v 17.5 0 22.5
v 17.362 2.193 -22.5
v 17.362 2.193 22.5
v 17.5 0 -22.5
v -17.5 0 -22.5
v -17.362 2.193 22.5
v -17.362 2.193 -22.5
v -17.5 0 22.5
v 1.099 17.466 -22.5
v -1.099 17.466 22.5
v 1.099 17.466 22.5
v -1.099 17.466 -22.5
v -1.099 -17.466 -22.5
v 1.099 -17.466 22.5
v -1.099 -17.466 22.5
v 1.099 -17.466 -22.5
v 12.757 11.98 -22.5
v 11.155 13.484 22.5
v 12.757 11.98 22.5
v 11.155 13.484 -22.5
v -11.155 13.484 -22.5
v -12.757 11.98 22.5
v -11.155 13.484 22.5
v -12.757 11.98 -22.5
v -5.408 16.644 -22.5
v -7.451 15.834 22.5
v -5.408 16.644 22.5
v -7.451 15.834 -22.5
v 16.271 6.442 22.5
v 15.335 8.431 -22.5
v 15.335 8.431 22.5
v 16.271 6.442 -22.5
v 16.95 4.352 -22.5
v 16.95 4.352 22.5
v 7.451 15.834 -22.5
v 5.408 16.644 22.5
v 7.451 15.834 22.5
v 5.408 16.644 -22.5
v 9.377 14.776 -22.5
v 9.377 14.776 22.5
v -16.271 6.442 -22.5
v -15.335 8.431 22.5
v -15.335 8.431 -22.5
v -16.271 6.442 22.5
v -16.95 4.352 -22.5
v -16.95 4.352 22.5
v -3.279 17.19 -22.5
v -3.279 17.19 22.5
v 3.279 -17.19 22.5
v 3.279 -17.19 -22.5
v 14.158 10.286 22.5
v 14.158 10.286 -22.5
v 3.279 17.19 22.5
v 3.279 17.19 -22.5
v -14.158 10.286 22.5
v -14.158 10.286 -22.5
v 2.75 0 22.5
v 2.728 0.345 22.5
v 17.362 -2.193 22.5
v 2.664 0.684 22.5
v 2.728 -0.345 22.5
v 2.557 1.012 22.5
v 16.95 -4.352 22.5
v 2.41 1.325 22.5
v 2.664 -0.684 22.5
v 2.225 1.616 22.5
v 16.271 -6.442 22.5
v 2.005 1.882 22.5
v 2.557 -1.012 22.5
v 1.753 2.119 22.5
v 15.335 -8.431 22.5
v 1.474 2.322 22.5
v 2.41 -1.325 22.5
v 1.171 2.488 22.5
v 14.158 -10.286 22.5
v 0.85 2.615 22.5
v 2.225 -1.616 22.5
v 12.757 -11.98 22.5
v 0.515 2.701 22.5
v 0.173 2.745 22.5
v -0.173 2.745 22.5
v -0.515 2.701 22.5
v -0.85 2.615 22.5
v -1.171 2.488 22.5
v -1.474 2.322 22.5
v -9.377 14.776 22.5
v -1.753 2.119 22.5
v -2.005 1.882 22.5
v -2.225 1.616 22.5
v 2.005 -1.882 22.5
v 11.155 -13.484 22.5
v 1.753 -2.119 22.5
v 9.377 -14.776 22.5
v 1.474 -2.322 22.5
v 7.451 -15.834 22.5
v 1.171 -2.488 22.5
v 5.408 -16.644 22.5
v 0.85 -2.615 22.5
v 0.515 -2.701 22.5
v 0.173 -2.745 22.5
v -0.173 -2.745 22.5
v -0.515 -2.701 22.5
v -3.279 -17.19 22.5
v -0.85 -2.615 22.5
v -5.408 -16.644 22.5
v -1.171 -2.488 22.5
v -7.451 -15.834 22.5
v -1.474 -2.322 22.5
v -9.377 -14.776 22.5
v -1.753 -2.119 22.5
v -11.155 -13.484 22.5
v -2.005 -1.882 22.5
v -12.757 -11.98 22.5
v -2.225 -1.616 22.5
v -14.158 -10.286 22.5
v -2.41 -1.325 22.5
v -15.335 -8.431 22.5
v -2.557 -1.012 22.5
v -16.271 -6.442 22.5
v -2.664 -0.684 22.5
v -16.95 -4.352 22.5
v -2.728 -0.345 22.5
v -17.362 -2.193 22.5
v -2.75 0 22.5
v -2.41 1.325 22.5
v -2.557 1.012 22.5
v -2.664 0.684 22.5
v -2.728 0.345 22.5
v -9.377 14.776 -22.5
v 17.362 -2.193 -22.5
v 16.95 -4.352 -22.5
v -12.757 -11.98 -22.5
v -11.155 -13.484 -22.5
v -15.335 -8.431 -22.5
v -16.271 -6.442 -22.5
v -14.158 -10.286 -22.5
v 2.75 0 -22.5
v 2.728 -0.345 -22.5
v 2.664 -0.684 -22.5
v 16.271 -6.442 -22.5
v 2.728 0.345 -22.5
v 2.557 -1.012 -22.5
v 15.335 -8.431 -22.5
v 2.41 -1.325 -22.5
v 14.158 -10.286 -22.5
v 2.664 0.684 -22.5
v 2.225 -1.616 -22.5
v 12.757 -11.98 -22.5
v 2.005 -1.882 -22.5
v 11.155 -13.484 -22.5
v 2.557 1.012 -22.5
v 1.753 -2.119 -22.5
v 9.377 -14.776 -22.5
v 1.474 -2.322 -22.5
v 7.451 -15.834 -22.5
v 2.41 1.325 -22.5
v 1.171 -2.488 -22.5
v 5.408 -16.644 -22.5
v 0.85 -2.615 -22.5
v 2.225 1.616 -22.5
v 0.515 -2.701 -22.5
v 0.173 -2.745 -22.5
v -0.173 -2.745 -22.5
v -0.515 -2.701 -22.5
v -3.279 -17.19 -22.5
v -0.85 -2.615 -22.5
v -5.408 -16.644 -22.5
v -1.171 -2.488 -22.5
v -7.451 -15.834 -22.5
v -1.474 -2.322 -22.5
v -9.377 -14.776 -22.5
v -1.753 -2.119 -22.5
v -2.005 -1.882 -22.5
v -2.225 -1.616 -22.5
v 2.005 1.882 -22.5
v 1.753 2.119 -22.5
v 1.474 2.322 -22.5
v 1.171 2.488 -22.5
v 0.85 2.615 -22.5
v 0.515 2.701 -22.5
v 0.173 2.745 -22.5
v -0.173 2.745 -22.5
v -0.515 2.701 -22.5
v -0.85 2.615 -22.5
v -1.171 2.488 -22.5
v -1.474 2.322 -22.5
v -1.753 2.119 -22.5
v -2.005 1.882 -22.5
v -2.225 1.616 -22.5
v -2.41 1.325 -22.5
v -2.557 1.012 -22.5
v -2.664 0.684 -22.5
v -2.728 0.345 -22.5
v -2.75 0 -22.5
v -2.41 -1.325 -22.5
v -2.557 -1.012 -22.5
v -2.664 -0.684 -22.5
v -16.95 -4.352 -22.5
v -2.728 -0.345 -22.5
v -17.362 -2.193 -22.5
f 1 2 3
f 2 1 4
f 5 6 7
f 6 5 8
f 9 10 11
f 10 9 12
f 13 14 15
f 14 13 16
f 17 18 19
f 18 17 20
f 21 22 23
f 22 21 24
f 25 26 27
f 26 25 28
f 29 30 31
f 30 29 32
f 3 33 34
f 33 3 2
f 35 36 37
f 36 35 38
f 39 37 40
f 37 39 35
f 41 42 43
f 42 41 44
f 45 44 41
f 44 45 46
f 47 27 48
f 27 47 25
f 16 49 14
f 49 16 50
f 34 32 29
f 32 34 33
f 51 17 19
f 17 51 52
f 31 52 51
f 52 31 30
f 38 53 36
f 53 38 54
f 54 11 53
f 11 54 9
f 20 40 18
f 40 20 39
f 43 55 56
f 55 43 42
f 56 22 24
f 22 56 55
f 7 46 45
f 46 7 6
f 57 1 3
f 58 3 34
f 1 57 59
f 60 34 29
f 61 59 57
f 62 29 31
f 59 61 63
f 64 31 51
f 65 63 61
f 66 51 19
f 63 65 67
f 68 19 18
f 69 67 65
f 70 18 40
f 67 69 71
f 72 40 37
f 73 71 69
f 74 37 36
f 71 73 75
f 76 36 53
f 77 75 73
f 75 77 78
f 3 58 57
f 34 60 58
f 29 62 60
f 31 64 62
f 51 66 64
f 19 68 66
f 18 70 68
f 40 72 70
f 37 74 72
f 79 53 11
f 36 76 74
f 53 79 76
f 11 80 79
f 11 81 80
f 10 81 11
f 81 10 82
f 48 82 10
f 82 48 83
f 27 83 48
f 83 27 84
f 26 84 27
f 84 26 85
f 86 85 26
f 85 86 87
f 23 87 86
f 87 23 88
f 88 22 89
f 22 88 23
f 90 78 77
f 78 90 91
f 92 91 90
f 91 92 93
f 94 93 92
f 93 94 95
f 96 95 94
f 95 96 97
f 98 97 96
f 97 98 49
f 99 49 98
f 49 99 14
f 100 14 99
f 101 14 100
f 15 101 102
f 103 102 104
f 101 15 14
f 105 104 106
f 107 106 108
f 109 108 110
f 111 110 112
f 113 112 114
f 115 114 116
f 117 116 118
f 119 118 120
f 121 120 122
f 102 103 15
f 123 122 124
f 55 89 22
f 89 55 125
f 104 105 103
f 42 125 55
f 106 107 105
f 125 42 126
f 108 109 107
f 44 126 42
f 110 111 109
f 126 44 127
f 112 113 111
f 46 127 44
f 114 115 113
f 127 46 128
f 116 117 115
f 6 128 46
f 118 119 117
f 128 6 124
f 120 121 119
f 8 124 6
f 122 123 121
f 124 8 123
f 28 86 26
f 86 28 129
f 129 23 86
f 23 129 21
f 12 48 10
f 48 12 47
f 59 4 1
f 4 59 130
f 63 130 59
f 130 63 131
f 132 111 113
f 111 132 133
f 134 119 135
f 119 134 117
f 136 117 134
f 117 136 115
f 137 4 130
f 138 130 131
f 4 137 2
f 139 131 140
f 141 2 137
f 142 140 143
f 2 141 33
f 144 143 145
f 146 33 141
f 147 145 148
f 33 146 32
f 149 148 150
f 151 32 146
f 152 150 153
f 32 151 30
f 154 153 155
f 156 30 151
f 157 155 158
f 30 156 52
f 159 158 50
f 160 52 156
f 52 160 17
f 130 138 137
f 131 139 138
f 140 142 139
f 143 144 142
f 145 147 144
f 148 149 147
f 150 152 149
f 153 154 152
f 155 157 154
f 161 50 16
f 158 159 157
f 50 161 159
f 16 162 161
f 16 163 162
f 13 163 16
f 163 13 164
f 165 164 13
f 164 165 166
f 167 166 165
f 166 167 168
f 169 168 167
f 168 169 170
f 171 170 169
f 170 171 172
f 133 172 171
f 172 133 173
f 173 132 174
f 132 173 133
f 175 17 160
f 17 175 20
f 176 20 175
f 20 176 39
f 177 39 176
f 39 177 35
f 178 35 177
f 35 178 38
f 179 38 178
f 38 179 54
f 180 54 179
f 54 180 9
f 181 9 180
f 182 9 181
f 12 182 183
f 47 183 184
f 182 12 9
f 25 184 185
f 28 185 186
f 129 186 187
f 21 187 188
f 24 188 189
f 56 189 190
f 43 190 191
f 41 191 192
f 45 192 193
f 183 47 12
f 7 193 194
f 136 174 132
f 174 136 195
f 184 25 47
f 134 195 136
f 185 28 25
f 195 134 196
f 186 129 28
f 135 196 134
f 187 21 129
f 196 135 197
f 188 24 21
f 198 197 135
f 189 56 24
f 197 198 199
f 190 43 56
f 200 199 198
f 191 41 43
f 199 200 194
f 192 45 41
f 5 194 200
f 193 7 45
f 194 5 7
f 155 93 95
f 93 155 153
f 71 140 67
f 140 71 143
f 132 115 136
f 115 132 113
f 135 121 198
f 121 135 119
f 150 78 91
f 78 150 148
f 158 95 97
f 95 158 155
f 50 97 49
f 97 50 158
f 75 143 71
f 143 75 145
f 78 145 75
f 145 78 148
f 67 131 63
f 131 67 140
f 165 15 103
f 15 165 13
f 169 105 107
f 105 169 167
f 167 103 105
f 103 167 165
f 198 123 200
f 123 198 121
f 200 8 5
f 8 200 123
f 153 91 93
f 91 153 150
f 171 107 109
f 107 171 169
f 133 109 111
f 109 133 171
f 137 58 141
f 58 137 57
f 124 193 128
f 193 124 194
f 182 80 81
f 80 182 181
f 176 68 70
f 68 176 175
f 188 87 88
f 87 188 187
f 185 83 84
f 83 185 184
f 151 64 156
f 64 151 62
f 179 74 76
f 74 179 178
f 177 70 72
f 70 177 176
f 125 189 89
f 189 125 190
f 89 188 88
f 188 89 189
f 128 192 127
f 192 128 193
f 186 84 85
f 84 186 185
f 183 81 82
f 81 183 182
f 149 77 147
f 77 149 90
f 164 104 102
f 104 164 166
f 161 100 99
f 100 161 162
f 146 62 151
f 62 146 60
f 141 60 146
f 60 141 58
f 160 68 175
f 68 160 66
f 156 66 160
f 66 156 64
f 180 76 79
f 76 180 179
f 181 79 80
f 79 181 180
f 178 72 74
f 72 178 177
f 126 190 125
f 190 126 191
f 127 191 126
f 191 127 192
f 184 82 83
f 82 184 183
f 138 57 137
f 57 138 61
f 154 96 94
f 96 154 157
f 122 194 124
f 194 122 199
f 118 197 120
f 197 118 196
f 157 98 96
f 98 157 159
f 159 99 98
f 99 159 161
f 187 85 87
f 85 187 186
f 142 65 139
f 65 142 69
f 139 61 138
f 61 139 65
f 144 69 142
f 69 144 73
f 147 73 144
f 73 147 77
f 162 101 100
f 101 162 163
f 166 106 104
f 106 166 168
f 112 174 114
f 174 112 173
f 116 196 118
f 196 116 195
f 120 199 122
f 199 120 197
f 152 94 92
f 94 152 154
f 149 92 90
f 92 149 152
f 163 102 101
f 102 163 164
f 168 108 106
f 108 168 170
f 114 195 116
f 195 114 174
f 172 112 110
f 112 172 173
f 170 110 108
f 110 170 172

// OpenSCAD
$fn = 50;


difference() {
	union() {
		translate(v = [0, 0, -22.5000000000]) {
			cylinder(h = 45, r = 17.5000000000);
		}
	}
	union() {
		translate(v = [0, 0, -100.0000000000]) {
			cylinder(h = 200, r = 2.7500000000);
		}
	}
}
